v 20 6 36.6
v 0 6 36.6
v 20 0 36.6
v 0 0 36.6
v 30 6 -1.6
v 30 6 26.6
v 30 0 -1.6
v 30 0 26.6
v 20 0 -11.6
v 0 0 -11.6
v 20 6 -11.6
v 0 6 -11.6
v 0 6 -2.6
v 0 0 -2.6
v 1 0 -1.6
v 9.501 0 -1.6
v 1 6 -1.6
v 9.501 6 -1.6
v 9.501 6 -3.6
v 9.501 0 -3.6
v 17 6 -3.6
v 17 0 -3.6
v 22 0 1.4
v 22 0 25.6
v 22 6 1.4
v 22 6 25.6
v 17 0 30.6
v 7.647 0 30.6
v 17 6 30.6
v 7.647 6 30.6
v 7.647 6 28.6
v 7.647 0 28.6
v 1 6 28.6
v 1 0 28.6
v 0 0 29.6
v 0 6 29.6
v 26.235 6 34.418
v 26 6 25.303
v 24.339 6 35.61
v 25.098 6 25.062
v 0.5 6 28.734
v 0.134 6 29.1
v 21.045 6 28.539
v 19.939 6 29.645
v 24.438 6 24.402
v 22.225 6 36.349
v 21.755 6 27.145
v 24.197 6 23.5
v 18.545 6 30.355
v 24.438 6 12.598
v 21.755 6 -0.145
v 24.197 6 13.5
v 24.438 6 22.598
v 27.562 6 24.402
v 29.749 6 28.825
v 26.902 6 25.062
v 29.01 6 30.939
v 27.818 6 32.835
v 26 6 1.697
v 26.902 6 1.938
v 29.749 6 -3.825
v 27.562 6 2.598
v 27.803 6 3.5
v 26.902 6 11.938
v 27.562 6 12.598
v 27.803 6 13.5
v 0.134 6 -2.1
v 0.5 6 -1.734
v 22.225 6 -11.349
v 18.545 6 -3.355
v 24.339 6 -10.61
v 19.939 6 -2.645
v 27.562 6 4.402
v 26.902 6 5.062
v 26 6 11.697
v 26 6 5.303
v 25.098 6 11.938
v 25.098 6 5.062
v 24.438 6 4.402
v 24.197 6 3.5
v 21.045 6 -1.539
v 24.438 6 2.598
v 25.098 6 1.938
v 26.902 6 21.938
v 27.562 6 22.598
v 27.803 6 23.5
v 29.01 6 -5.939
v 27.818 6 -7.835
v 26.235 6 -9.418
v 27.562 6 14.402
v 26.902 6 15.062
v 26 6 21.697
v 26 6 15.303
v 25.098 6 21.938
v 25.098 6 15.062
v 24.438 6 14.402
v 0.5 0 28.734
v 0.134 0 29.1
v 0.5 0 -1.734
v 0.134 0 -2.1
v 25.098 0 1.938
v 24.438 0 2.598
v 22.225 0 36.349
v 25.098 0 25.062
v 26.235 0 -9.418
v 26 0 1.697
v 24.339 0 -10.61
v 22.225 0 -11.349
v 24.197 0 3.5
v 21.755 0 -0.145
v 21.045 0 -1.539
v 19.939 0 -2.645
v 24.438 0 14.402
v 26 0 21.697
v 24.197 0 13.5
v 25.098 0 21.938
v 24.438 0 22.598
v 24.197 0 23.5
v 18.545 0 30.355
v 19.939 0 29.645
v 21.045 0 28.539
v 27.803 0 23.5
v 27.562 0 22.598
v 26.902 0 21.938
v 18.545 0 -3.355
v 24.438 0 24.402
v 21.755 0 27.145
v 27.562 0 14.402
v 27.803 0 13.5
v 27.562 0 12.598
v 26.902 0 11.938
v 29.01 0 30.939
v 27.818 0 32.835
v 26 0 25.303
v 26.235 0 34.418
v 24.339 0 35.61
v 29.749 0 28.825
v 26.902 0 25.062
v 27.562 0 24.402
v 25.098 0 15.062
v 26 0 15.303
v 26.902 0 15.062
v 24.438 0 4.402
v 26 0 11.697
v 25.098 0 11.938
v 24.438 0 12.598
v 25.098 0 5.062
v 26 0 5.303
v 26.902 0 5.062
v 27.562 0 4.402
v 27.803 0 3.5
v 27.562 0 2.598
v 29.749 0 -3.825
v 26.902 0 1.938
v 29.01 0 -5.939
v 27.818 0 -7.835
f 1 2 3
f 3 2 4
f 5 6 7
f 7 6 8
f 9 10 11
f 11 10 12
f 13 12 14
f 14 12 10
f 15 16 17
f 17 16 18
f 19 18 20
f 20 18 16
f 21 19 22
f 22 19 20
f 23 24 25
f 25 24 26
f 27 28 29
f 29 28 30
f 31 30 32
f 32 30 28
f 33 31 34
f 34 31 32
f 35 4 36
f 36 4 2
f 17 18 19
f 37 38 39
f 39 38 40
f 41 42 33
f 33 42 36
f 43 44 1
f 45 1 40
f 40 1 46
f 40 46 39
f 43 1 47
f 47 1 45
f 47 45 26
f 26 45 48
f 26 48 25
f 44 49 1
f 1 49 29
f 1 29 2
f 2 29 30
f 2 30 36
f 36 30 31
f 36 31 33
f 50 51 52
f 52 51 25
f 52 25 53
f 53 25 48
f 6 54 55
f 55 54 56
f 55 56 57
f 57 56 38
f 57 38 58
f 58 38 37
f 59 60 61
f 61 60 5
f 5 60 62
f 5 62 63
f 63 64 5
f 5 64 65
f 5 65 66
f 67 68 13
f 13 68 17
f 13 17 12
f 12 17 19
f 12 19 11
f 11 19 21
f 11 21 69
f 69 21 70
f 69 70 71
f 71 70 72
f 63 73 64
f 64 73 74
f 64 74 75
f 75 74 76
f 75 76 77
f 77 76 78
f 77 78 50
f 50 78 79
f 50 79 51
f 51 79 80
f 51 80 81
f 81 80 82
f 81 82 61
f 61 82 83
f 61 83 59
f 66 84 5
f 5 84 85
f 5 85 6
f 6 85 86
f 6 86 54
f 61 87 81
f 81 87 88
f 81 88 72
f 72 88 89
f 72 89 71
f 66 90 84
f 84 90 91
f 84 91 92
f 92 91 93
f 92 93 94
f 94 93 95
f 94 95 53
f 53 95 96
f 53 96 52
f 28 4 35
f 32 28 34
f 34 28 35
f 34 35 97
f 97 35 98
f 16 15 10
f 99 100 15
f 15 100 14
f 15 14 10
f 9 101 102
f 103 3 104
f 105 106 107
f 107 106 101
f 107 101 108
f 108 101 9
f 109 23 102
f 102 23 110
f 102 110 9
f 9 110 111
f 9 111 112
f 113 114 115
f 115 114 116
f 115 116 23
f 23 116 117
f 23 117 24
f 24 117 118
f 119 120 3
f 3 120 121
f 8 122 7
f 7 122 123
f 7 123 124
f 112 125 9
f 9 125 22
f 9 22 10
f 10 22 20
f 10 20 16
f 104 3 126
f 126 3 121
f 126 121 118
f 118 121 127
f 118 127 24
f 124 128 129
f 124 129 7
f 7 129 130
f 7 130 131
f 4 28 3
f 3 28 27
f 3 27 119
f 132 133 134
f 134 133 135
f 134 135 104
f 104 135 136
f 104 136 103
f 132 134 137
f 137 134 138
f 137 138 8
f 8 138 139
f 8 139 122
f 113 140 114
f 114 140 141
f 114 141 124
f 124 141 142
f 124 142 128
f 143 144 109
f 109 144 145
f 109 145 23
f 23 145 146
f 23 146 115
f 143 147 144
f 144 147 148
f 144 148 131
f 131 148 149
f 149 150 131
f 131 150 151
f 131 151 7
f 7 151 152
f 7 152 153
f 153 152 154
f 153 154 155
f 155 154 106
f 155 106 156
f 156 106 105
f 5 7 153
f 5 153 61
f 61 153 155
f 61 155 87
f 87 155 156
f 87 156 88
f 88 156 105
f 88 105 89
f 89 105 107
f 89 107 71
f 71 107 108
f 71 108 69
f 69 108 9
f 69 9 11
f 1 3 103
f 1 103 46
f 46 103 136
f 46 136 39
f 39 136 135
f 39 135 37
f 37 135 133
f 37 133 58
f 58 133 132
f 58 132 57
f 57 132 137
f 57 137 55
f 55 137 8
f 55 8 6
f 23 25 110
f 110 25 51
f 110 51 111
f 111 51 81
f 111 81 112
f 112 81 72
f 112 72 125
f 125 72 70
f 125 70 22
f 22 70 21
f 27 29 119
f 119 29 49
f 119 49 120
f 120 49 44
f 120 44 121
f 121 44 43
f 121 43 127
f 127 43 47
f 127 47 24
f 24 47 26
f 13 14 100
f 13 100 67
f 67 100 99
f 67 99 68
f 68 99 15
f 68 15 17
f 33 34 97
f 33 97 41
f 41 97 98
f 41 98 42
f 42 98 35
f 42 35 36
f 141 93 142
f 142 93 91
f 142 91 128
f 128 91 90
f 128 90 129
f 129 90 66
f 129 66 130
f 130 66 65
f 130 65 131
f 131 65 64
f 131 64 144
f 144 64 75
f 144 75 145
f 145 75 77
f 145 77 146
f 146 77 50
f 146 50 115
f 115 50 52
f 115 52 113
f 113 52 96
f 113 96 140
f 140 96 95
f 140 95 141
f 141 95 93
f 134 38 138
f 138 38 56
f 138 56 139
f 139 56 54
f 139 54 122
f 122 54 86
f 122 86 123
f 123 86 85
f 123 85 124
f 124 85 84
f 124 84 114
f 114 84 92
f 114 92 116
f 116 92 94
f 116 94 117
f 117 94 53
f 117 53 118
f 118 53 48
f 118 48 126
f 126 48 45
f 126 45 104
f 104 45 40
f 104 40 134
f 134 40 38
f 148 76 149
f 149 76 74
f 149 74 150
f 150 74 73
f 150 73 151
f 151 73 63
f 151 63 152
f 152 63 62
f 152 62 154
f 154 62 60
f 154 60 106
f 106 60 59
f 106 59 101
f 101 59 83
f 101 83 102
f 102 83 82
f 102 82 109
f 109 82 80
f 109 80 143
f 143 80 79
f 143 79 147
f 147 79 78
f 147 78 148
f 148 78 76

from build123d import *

# Parameters (mm, degrees)
SALIENTE_EXTRUIR1_DEPTH = 6
REDONDEO1_R             = 10
REDONDEO2_R             = 5
REDONDEO3_R             = 1
CROQUIS2_R              = 1.803309478
CORTAR_EXTRUIR1_DEPTH   = 6
MATRIZL1_COUNT          = 2
MATRIZL1_PITCH          = 10
MATRIZL2_COUNT          = 2
MATRIZL2_PITCH          = 10


with BuildPart() as part:
    # Croquis1 → Saliente-Extruir1 (new body)
    with BuildSketch(Plane(origin=(0, 0, 0), x_dir=(1, 0, 0), z_dir=(0, 1, 0))):
        Polygon((0, -36.6), (0, -28.6), (7.646653433, -28.6), (7.646653433, -30.6), (22, -30.6), (22, -28.6), (22, 1.6), (22, 3.6), (9.500929434, 3.6), (9.500929434, 1.6), (0, 1.6), (0, 11.6), (30, 11.6), (30, -36.6), align=None)
    extrude(amount=SALIENTE_EXTRUIR1_DEPTH)

    # Redondeo1
    redondeo1_edges = [part.edges().sort_by_distance(p)[0] for p in [
        (30, 3, -11.6),
        (30, 3, 36.6),
    ]]
    fillet(redondeo1_edges, radius=REDONDEO1_R)

    # Redondeo2
    redondeo2_edges = [part.edges().sort_by_distance(p)[0] for p in [
        (22, 3, 30.6),
        (22, 3, -3.6),
    ]]
    fillet(redondeo2_edges, radius=REDONDEO2_R)

    # Redondeo3
    redondeo3_edges = [part.edges().sort_by_distance(p)[0] for p in [
        (0, 3, 28.6),
        (0, 3, -1.6),
    ]]
    fillet(redondeo3_edges, radius=REDONDEO3_R)

    # Croquis2 → Cortar-Extruir1 (cut)
    with BuildSketch(Plane(origin=(0, 6, 0), x_dir=(1, 0, 0), z_dir=(0, 1, 0))):
        with Locations(Location((26, -13.5, 0), (0, 0, 270))):
            Circle(CROQUIS2_R)
    cortar_extruir1 = extrude(amount=-CORTAR_EXTRUIR1_DEPTH, mode=Mode.SUBTRACT)

    # MatrizL1: Cortar-Extruir1 ×2
    with Locations(*[(0, 0, i * MATRIZL1_PITCH) for i in range(1, MATRIZL1_COUNT)]):
        add(cortar_extruir1, mode=Mode.SUBTRACT)

    # MatrizL2: Cortar-Extruir1 ×2
    with Locations(*[(0, 0, -i * MATRIZL2_PITCH) for i in range(1, MATRIZL2_COUNT)]):
        add(cortar_extruir1, mode=Mode.SUBTRACT)


solid = part.part
